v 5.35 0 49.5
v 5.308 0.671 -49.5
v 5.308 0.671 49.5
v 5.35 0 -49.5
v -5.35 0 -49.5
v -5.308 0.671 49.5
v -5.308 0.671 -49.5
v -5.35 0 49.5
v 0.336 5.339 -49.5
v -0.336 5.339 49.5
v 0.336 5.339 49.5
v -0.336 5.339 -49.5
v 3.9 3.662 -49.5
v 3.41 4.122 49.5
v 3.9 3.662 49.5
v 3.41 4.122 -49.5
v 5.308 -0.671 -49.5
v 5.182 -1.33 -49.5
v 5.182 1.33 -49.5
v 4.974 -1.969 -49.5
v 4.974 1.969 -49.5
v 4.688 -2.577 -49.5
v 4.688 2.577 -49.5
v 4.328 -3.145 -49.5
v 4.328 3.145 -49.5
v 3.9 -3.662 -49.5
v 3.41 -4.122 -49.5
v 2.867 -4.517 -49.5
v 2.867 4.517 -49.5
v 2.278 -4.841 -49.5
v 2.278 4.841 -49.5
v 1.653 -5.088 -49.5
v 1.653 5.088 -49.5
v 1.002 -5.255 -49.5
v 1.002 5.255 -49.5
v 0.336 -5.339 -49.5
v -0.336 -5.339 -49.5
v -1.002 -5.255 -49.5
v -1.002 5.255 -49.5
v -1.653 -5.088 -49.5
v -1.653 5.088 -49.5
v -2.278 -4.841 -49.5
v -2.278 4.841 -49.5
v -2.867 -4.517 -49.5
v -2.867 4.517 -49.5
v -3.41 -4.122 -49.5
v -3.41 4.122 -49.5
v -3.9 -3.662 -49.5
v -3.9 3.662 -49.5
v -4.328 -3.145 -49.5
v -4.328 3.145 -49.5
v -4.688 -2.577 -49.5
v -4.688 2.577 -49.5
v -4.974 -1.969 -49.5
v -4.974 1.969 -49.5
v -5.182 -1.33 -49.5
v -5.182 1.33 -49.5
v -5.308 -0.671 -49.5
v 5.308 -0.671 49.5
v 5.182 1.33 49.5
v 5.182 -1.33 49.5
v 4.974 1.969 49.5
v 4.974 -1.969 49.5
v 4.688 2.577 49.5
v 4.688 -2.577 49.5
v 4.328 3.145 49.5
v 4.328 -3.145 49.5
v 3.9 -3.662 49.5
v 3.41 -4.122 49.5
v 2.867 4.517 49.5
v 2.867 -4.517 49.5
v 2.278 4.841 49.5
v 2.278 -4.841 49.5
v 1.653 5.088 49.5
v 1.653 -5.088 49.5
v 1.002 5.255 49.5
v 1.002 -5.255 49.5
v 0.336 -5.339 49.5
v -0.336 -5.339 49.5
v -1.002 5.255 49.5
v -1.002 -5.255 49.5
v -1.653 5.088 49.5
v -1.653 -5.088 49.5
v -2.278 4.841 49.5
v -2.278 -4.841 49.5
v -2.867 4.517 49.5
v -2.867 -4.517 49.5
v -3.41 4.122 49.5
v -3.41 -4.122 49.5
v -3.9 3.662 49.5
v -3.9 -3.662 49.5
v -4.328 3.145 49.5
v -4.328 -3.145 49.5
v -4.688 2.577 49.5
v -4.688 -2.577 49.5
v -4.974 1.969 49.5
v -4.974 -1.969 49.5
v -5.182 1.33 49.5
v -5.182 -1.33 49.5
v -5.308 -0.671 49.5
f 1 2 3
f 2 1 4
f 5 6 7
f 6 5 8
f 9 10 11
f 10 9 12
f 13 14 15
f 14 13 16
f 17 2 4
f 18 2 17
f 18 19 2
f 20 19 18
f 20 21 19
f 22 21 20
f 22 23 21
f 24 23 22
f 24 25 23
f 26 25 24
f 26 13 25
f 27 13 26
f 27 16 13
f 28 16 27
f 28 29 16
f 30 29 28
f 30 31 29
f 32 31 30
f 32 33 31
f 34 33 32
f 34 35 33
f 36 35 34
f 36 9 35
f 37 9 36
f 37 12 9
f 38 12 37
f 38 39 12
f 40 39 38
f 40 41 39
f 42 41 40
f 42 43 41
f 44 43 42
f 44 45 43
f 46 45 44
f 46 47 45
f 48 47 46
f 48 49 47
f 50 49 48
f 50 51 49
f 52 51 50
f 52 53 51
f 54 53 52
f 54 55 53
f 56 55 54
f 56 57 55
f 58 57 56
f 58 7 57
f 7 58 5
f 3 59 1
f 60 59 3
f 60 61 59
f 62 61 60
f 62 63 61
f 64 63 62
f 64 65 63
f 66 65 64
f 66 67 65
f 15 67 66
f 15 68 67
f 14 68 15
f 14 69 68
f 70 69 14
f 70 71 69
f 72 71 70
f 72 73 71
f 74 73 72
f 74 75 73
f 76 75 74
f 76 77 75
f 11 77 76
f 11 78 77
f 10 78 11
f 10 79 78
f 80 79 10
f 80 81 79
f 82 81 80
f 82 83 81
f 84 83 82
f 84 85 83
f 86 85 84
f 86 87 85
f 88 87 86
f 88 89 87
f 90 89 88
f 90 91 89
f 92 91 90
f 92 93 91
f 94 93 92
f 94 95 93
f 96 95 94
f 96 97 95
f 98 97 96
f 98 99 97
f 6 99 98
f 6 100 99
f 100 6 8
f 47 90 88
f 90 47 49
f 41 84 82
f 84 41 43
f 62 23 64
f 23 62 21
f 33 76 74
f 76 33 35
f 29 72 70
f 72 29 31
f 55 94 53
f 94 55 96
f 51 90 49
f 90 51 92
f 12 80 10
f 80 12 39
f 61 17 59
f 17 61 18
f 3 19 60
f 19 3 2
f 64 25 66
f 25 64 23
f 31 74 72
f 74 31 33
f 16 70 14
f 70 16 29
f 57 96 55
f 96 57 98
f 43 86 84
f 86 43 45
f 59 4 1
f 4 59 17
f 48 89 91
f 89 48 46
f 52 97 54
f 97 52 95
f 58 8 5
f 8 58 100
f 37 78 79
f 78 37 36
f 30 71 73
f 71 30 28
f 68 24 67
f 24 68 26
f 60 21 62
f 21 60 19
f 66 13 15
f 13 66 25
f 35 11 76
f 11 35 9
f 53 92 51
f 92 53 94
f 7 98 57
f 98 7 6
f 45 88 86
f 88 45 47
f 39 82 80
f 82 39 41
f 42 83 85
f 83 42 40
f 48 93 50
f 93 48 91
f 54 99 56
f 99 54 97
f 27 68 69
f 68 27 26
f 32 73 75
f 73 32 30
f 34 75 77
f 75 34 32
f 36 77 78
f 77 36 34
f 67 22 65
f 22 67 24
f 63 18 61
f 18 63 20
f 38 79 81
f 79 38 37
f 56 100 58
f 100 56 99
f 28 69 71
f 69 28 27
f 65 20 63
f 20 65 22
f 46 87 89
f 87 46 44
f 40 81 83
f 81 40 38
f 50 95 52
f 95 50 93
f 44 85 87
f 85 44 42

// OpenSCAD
$fn = 50;


difference() {
	union() {
		translate(v = [0, 0, -49.5000000000]) {
			cylinder(h = 99, r = 5.3500000000);
		}
	}
	union() {
		translate(v = [0, 0, -100.0000000000]) {
			cylinder(h = 200, r = 0);
		}
	}
}
